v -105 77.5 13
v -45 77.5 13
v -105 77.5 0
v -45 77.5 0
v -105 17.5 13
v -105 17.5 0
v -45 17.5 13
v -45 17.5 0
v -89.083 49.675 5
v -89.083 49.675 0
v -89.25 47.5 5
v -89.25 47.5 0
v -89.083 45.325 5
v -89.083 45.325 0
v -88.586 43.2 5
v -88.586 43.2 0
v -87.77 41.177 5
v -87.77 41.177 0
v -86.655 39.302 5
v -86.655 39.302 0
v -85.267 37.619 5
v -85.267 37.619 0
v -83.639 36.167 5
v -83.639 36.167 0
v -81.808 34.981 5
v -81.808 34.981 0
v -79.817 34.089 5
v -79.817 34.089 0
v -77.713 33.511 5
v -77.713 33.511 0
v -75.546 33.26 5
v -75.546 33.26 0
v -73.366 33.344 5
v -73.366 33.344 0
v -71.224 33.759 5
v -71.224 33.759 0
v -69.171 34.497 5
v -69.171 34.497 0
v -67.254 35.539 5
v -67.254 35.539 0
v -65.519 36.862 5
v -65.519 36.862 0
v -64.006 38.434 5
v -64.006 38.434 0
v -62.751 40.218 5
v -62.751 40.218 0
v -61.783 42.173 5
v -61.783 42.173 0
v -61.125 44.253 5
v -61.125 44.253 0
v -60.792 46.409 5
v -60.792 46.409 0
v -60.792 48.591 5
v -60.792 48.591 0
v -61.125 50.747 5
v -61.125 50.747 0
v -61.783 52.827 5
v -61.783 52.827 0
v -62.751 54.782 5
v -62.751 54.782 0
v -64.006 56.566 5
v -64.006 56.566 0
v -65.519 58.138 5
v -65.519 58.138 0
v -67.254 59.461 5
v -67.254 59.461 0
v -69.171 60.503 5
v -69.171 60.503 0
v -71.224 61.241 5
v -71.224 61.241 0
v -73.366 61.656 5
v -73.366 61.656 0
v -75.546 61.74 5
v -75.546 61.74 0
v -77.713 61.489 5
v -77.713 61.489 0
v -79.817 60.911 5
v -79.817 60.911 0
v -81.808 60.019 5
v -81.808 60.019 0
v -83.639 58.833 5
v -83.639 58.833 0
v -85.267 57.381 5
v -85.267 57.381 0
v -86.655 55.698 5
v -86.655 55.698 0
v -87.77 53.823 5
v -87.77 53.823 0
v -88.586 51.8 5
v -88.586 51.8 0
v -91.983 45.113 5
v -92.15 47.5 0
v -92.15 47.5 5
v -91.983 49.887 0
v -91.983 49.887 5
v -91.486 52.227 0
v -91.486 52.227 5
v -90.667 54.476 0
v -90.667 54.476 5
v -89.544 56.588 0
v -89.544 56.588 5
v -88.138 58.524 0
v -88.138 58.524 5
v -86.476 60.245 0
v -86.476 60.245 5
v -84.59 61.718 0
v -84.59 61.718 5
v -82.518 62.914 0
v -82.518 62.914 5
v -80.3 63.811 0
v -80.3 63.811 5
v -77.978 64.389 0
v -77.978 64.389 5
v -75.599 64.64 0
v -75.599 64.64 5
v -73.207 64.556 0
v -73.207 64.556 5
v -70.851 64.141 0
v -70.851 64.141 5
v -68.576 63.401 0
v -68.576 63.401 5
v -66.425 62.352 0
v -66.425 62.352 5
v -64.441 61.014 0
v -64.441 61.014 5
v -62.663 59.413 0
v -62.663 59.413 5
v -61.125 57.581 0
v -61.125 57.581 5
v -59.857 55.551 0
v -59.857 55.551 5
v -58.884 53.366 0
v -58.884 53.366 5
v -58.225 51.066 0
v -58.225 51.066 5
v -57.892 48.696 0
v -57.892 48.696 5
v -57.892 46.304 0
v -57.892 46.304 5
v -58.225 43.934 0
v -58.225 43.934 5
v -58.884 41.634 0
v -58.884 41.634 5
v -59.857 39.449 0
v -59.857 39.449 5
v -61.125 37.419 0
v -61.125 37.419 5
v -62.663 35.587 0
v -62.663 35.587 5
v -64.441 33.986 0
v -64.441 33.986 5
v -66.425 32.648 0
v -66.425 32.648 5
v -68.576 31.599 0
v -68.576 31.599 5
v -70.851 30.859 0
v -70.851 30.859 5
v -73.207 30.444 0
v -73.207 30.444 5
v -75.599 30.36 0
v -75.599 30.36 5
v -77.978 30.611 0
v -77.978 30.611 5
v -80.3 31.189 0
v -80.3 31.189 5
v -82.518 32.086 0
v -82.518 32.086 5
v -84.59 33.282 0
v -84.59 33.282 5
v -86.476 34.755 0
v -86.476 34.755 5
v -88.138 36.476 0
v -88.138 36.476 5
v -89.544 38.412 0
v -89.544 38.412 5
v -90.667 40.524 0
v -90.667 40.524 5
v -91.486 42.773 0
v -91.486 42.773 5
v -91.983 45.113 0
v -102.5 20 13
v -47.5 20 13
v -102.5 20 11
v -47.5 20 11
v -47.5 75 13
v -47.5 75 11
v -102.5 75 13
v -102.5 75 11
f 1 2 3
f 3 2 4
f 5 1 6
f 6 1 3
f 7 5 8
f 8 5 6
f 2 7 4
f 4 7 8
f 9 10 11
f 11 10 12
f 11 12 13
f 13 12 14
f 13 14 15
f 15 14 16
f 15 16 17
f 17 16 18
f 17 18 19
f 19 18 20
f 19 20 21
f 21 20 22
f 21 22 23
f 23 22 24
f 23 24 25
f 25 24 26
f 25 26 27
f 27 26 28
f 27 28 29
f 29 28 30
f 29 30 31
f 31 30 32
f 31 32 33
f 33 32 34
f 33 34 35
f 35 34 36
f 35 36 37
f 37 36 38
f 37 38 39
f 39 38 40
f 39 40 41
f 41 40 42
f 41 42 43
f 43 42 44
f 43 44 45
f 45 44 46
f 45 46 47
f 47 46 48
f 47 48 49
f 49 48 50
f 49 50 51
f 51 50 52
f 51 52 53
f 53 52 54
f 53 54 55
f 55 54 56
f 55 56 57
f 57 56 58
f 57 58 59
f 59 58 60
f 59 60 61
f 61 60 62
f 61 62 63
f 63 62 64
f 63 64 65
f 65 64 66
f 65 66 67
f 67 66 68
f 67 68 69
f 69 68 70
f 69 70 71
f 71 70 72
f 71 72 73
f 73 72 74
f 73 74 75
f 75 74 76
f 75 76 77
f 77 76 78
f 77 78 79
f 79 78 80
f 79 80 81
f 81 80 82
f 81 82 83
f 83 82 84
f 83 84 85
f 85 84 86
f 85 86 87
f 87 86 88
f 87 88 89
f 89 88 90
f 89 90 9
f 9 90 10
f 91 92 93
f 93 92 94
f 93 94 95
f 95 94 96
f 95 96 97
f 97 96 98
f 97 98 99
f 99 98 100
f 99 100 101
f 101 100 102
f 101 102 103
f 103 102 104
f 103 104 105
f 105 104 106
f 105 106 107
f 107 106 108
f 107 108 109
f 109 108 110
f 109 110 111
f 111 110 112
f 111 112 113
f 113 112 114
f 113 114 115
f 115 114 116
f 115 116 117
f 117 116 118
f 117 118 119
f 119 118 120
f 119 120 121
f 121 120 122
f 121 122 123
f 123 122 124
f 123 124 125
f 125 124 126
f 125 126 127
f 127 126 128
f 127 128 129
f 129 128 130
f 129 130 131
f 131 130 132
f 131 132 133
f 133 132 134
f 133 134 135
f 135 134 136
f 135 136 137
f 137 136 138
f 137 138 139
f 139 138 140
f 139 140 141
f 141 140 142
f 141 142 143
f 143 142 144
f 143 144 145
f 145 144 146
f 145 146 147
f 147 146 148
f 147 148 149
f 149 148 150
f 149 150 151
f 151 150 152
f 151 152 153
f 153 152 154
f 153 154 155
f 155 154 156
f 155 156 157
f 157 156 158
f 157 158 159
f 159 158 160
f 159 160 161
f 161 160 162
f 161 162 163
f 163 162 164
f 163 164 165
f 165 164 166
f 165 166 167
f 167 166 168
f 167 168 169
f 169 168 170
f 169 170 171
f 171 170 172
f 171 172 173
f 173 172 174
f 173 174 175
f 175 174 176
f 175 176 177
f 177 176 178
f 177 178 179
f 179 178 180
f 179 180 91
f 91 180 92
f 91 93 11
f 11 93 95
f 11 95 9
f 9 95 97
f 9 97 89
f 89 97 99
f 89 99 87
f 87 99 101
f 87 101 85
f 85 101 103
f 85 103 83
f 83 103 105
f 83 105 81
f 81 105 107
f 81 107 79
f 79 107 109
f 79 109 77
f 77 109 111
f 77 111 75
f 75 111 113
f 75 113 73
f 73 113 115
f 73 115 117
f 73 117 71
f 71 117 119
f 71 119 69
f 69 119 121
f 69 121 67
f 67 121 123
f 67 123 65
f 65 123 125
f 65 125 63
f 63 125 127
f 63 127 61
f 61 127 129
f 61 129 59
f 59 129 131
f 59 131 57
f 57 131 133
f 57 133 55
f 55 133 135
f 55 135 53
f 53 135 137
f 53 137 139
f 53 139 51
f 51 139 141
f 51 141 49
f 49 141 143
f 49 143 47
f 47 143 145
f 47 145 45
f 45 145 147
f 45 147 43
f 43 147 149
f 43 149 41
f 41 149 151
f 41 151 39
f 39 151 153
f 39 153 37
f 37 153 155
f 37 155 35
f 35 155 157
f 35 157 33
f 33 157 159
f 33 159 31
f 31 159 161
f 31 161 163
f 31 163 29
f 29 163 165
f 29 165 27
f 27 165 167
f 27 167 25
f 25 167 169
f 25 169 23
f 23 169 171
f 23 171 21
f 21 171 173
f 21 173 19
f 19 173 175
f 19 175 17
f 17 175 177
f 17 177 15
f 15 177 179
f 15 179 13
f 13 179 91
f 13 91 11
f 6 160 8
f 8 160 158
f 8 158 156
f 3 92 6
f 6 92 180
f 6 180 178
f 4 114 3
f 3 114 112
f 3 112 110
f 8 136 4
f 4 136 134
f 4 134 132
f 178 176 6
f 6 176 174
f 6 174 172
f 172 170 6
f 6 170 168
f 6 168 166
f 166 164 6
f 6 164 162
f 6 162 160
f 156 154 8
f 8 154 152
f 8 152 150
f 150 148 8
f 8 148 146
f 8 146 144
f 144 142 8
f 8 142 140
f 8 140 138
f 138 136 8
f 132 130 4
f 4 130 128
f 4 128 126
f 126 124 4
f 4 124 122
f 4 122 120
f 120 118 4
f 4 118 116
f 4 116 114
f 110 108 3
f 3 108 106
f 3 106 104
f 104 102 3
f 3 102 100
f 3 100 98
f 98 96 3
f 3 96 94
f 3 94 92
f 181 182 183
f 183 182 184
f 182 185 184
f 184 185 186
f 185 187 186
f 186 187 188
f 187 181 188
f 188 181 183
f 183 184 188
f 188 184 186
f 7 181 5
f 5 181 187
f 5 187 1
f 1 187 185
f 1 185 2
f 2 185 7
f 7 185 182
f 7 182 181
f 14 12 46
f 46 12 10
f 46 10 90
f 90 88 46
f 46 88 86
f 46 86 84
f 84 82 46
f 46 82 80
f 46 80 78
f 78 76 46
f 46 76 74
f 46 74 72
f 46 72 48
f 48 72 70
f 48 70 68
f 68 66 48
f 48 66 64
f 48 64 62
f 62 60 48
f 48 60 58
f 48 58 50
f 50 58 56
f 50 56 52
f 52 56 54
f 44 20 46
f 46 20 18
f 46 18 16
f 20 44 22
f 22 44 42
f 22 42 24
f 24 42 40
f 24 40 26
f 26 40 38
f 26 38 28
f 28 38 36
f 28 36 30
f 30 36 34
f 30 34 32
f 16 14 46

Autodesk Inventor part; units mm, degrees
ref_plane "YZ Plane" through (0, 0, 0) normal (1, 0, 0) x (0, 1, 0)
ref_plane "XZ Plane" through (0, 0, 0) normal (0, 1, 0) x (-1, 0, 0)
ref_plane "XY Plane" through (0, 0, 0) normal (0, 0, 1) x (1, 0, 0)
sketch "Sketch1" plane through (0, 0, 0) normal (0, 0, 1) x (1, 0, 0)
  line L0 (0, 0) -> (-150, 0)
  line L1 (-150, 0) -> (-150, 95)
  line L2 (-150, 95) -> (0, 95)
  line L3 (0, 95) -> (0, 0)
  dimension "d0" = 150
  dimension "d1" = 95
extrude "Extrusion1" add sketch "Sketch1" along normal blind 15
sketch "Sketch2" plane through (0, 0, 15) normal (0, 0, 1) x (1, 0, 0)
  line L0 (-32.5, 5) -> (-117.5, 5)
  line L1 (-117.5, 5) -> (-117.5, 90)
  line L2 (-117.5, 90) -> (-32.5, 90)
  line L3 (-32.5, 90) -> (-32.5, 5)
  point P0 (0, 0)
  dimension "d4" = 85
  dimension "d5" = 85
extrude "Extrusion2" cut sketch "Sketch2" against normal blind 2
sketch "Sketch3" plane through (0, 0, 13) normal (0, 0, 1) x (1, 0, 0)
  line L0 (-47.5, 75) -> (-102.5, 75)
  line L1 (-102.5, 75) -> (-102.5, 20)
  line L2 (-102.5, 20) -> (-47.5, 20)
  line L3 (-47.5, 20) -> (-47.5, 75)
  point P0 (0, 0)
  point P1 (-47.5, 47.5)
  dimension "d10" = 55
  dimension "d11" = 55
extrude "Extrusion3" cut sketch "Sketch3" against normal blind 2
sketch "Sketch4" plane through (0, 0, 0) normal (0, 0, -1) x (-1, 0, 0)
  circle A0 centre (75, 47.5) radius 14.25
  circle A1 centre (75, 47.5) radius 17.15
  line L0 (2.5, 2.5) -> (7.5, 2.5)
  line L1 (7.5, 2.5) -> (7.5, 7.5)
  line L2 (7.5, 7.5) -> (2.5, 7.5)
  line L3 (2.5, 7.5) -> (2.5, 2.5)
  line L4 (147.5, 2.5) -> (142.5, 2.5)
  line L5 (142.5, 2.5) -> (142.5, 7.5)
  line L6 (142.5, 7.5) -> (147.5, 7.5)
  line L7 (147.5, 7.5) -> (147.5, 2.5)
  line L8 (2.5, 92.5) -> (7.5, 92.5)
  line L9 (7.5, 92.5) -> (7.5, 87.5)
  line L10 (7.5, 87.5) -> (2.5, 87.5)
  line L11 (2.5, 87.5) -> (2.5, 92.5)
  line L12 (147.5, 92.5) -> (142.5, 92.5)
  line L13 (142.5, 92.5) -> (142.5, 87.5)
  line L14 (142.5, 87.5) -> (147.5, 87.5)
  line L15 (147.5, 87.5) -> (147.5, 92.5)
  point P0 (0, 0)
  dimension "d14" = 28.5
  dimension "d15" = 34.3
  dimension "d16" = 5
  dimension "d17" = 5
  dimension "d18" = 5
  dimension "d19" = 5
  dimension "d20" = 5
  dimension "d21" = 5
  dimension "d22" = 5
  dimension "d23" = 5
extrude "Extrusion4" cut sketch "Sketch4" against normal blind 5
sketch "Sketch5" plane through (0, 0, 0) normal (0, 0, -1) x (-1, 0, 0)
  line L0 (105, 77.5) -> (45, 77.5)
  line L1 (45, 77.5) -> (45, 17.5)
  line L2 (45, 17.5) -> (105, 17.5)
  line L3 (105, 17.5) -> (105, 77.5)
  line L4 (150, 0) -> (0, 0) projected
  line L5 (150, 95) -> (150, 0) projected
  line L6 (0, 0) -> (150, 0)
  line L7 (150, 0) -> (150, 95)
  line L8 (150, 95) -> (0, 95)
  line L9 (0, 95) -> (0, 0)
  dimension "d28" = 60
  dimension "d29" = 60
  dimension "d30" = 150
  dimension "d31" = 95
extrude "Extrusion5" cut sketch "Sketch5" against normal blind 15
properties part number "Shoulder_Both_Marker_V1"
